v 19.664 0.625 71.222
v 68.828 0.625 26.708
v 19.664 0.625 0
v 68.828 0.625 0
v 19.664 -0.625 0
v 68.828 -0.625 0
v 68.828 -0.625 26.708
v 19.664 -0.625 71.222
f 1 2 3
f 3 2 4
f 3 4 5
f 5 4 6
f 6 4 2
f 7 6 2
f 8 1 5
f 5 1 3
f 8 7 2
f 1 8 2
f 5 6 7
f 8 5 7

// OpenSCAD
polyhedron(points = [[19.6644900559, 0.6250000000, 0], [19.6644900559, -0.6250000000, 0], [68.8274651957, 0.6250000000, 0], [68.8274651957, -0.6250000000, 0], [68.8274651957, 0.6250000000, 26.7080855776], [68.8274651957, -0.6250000000, 26.7080855776], [19.6644900559, 0.6250000000, 71.2215615404], [19.6644900559, -0.6250000000, 71.2215615404]], triangles = [[0, 1, 2], [1, 3, 2], [2, 3, 4], [3, 5, 4], [4, 5, 6], [5, 7, 6], [6, 7, 0], [7, 1, 0], [0, 2, 6], [2, 4, 6], [1, 7, 3], [3, 7, 5]]);
